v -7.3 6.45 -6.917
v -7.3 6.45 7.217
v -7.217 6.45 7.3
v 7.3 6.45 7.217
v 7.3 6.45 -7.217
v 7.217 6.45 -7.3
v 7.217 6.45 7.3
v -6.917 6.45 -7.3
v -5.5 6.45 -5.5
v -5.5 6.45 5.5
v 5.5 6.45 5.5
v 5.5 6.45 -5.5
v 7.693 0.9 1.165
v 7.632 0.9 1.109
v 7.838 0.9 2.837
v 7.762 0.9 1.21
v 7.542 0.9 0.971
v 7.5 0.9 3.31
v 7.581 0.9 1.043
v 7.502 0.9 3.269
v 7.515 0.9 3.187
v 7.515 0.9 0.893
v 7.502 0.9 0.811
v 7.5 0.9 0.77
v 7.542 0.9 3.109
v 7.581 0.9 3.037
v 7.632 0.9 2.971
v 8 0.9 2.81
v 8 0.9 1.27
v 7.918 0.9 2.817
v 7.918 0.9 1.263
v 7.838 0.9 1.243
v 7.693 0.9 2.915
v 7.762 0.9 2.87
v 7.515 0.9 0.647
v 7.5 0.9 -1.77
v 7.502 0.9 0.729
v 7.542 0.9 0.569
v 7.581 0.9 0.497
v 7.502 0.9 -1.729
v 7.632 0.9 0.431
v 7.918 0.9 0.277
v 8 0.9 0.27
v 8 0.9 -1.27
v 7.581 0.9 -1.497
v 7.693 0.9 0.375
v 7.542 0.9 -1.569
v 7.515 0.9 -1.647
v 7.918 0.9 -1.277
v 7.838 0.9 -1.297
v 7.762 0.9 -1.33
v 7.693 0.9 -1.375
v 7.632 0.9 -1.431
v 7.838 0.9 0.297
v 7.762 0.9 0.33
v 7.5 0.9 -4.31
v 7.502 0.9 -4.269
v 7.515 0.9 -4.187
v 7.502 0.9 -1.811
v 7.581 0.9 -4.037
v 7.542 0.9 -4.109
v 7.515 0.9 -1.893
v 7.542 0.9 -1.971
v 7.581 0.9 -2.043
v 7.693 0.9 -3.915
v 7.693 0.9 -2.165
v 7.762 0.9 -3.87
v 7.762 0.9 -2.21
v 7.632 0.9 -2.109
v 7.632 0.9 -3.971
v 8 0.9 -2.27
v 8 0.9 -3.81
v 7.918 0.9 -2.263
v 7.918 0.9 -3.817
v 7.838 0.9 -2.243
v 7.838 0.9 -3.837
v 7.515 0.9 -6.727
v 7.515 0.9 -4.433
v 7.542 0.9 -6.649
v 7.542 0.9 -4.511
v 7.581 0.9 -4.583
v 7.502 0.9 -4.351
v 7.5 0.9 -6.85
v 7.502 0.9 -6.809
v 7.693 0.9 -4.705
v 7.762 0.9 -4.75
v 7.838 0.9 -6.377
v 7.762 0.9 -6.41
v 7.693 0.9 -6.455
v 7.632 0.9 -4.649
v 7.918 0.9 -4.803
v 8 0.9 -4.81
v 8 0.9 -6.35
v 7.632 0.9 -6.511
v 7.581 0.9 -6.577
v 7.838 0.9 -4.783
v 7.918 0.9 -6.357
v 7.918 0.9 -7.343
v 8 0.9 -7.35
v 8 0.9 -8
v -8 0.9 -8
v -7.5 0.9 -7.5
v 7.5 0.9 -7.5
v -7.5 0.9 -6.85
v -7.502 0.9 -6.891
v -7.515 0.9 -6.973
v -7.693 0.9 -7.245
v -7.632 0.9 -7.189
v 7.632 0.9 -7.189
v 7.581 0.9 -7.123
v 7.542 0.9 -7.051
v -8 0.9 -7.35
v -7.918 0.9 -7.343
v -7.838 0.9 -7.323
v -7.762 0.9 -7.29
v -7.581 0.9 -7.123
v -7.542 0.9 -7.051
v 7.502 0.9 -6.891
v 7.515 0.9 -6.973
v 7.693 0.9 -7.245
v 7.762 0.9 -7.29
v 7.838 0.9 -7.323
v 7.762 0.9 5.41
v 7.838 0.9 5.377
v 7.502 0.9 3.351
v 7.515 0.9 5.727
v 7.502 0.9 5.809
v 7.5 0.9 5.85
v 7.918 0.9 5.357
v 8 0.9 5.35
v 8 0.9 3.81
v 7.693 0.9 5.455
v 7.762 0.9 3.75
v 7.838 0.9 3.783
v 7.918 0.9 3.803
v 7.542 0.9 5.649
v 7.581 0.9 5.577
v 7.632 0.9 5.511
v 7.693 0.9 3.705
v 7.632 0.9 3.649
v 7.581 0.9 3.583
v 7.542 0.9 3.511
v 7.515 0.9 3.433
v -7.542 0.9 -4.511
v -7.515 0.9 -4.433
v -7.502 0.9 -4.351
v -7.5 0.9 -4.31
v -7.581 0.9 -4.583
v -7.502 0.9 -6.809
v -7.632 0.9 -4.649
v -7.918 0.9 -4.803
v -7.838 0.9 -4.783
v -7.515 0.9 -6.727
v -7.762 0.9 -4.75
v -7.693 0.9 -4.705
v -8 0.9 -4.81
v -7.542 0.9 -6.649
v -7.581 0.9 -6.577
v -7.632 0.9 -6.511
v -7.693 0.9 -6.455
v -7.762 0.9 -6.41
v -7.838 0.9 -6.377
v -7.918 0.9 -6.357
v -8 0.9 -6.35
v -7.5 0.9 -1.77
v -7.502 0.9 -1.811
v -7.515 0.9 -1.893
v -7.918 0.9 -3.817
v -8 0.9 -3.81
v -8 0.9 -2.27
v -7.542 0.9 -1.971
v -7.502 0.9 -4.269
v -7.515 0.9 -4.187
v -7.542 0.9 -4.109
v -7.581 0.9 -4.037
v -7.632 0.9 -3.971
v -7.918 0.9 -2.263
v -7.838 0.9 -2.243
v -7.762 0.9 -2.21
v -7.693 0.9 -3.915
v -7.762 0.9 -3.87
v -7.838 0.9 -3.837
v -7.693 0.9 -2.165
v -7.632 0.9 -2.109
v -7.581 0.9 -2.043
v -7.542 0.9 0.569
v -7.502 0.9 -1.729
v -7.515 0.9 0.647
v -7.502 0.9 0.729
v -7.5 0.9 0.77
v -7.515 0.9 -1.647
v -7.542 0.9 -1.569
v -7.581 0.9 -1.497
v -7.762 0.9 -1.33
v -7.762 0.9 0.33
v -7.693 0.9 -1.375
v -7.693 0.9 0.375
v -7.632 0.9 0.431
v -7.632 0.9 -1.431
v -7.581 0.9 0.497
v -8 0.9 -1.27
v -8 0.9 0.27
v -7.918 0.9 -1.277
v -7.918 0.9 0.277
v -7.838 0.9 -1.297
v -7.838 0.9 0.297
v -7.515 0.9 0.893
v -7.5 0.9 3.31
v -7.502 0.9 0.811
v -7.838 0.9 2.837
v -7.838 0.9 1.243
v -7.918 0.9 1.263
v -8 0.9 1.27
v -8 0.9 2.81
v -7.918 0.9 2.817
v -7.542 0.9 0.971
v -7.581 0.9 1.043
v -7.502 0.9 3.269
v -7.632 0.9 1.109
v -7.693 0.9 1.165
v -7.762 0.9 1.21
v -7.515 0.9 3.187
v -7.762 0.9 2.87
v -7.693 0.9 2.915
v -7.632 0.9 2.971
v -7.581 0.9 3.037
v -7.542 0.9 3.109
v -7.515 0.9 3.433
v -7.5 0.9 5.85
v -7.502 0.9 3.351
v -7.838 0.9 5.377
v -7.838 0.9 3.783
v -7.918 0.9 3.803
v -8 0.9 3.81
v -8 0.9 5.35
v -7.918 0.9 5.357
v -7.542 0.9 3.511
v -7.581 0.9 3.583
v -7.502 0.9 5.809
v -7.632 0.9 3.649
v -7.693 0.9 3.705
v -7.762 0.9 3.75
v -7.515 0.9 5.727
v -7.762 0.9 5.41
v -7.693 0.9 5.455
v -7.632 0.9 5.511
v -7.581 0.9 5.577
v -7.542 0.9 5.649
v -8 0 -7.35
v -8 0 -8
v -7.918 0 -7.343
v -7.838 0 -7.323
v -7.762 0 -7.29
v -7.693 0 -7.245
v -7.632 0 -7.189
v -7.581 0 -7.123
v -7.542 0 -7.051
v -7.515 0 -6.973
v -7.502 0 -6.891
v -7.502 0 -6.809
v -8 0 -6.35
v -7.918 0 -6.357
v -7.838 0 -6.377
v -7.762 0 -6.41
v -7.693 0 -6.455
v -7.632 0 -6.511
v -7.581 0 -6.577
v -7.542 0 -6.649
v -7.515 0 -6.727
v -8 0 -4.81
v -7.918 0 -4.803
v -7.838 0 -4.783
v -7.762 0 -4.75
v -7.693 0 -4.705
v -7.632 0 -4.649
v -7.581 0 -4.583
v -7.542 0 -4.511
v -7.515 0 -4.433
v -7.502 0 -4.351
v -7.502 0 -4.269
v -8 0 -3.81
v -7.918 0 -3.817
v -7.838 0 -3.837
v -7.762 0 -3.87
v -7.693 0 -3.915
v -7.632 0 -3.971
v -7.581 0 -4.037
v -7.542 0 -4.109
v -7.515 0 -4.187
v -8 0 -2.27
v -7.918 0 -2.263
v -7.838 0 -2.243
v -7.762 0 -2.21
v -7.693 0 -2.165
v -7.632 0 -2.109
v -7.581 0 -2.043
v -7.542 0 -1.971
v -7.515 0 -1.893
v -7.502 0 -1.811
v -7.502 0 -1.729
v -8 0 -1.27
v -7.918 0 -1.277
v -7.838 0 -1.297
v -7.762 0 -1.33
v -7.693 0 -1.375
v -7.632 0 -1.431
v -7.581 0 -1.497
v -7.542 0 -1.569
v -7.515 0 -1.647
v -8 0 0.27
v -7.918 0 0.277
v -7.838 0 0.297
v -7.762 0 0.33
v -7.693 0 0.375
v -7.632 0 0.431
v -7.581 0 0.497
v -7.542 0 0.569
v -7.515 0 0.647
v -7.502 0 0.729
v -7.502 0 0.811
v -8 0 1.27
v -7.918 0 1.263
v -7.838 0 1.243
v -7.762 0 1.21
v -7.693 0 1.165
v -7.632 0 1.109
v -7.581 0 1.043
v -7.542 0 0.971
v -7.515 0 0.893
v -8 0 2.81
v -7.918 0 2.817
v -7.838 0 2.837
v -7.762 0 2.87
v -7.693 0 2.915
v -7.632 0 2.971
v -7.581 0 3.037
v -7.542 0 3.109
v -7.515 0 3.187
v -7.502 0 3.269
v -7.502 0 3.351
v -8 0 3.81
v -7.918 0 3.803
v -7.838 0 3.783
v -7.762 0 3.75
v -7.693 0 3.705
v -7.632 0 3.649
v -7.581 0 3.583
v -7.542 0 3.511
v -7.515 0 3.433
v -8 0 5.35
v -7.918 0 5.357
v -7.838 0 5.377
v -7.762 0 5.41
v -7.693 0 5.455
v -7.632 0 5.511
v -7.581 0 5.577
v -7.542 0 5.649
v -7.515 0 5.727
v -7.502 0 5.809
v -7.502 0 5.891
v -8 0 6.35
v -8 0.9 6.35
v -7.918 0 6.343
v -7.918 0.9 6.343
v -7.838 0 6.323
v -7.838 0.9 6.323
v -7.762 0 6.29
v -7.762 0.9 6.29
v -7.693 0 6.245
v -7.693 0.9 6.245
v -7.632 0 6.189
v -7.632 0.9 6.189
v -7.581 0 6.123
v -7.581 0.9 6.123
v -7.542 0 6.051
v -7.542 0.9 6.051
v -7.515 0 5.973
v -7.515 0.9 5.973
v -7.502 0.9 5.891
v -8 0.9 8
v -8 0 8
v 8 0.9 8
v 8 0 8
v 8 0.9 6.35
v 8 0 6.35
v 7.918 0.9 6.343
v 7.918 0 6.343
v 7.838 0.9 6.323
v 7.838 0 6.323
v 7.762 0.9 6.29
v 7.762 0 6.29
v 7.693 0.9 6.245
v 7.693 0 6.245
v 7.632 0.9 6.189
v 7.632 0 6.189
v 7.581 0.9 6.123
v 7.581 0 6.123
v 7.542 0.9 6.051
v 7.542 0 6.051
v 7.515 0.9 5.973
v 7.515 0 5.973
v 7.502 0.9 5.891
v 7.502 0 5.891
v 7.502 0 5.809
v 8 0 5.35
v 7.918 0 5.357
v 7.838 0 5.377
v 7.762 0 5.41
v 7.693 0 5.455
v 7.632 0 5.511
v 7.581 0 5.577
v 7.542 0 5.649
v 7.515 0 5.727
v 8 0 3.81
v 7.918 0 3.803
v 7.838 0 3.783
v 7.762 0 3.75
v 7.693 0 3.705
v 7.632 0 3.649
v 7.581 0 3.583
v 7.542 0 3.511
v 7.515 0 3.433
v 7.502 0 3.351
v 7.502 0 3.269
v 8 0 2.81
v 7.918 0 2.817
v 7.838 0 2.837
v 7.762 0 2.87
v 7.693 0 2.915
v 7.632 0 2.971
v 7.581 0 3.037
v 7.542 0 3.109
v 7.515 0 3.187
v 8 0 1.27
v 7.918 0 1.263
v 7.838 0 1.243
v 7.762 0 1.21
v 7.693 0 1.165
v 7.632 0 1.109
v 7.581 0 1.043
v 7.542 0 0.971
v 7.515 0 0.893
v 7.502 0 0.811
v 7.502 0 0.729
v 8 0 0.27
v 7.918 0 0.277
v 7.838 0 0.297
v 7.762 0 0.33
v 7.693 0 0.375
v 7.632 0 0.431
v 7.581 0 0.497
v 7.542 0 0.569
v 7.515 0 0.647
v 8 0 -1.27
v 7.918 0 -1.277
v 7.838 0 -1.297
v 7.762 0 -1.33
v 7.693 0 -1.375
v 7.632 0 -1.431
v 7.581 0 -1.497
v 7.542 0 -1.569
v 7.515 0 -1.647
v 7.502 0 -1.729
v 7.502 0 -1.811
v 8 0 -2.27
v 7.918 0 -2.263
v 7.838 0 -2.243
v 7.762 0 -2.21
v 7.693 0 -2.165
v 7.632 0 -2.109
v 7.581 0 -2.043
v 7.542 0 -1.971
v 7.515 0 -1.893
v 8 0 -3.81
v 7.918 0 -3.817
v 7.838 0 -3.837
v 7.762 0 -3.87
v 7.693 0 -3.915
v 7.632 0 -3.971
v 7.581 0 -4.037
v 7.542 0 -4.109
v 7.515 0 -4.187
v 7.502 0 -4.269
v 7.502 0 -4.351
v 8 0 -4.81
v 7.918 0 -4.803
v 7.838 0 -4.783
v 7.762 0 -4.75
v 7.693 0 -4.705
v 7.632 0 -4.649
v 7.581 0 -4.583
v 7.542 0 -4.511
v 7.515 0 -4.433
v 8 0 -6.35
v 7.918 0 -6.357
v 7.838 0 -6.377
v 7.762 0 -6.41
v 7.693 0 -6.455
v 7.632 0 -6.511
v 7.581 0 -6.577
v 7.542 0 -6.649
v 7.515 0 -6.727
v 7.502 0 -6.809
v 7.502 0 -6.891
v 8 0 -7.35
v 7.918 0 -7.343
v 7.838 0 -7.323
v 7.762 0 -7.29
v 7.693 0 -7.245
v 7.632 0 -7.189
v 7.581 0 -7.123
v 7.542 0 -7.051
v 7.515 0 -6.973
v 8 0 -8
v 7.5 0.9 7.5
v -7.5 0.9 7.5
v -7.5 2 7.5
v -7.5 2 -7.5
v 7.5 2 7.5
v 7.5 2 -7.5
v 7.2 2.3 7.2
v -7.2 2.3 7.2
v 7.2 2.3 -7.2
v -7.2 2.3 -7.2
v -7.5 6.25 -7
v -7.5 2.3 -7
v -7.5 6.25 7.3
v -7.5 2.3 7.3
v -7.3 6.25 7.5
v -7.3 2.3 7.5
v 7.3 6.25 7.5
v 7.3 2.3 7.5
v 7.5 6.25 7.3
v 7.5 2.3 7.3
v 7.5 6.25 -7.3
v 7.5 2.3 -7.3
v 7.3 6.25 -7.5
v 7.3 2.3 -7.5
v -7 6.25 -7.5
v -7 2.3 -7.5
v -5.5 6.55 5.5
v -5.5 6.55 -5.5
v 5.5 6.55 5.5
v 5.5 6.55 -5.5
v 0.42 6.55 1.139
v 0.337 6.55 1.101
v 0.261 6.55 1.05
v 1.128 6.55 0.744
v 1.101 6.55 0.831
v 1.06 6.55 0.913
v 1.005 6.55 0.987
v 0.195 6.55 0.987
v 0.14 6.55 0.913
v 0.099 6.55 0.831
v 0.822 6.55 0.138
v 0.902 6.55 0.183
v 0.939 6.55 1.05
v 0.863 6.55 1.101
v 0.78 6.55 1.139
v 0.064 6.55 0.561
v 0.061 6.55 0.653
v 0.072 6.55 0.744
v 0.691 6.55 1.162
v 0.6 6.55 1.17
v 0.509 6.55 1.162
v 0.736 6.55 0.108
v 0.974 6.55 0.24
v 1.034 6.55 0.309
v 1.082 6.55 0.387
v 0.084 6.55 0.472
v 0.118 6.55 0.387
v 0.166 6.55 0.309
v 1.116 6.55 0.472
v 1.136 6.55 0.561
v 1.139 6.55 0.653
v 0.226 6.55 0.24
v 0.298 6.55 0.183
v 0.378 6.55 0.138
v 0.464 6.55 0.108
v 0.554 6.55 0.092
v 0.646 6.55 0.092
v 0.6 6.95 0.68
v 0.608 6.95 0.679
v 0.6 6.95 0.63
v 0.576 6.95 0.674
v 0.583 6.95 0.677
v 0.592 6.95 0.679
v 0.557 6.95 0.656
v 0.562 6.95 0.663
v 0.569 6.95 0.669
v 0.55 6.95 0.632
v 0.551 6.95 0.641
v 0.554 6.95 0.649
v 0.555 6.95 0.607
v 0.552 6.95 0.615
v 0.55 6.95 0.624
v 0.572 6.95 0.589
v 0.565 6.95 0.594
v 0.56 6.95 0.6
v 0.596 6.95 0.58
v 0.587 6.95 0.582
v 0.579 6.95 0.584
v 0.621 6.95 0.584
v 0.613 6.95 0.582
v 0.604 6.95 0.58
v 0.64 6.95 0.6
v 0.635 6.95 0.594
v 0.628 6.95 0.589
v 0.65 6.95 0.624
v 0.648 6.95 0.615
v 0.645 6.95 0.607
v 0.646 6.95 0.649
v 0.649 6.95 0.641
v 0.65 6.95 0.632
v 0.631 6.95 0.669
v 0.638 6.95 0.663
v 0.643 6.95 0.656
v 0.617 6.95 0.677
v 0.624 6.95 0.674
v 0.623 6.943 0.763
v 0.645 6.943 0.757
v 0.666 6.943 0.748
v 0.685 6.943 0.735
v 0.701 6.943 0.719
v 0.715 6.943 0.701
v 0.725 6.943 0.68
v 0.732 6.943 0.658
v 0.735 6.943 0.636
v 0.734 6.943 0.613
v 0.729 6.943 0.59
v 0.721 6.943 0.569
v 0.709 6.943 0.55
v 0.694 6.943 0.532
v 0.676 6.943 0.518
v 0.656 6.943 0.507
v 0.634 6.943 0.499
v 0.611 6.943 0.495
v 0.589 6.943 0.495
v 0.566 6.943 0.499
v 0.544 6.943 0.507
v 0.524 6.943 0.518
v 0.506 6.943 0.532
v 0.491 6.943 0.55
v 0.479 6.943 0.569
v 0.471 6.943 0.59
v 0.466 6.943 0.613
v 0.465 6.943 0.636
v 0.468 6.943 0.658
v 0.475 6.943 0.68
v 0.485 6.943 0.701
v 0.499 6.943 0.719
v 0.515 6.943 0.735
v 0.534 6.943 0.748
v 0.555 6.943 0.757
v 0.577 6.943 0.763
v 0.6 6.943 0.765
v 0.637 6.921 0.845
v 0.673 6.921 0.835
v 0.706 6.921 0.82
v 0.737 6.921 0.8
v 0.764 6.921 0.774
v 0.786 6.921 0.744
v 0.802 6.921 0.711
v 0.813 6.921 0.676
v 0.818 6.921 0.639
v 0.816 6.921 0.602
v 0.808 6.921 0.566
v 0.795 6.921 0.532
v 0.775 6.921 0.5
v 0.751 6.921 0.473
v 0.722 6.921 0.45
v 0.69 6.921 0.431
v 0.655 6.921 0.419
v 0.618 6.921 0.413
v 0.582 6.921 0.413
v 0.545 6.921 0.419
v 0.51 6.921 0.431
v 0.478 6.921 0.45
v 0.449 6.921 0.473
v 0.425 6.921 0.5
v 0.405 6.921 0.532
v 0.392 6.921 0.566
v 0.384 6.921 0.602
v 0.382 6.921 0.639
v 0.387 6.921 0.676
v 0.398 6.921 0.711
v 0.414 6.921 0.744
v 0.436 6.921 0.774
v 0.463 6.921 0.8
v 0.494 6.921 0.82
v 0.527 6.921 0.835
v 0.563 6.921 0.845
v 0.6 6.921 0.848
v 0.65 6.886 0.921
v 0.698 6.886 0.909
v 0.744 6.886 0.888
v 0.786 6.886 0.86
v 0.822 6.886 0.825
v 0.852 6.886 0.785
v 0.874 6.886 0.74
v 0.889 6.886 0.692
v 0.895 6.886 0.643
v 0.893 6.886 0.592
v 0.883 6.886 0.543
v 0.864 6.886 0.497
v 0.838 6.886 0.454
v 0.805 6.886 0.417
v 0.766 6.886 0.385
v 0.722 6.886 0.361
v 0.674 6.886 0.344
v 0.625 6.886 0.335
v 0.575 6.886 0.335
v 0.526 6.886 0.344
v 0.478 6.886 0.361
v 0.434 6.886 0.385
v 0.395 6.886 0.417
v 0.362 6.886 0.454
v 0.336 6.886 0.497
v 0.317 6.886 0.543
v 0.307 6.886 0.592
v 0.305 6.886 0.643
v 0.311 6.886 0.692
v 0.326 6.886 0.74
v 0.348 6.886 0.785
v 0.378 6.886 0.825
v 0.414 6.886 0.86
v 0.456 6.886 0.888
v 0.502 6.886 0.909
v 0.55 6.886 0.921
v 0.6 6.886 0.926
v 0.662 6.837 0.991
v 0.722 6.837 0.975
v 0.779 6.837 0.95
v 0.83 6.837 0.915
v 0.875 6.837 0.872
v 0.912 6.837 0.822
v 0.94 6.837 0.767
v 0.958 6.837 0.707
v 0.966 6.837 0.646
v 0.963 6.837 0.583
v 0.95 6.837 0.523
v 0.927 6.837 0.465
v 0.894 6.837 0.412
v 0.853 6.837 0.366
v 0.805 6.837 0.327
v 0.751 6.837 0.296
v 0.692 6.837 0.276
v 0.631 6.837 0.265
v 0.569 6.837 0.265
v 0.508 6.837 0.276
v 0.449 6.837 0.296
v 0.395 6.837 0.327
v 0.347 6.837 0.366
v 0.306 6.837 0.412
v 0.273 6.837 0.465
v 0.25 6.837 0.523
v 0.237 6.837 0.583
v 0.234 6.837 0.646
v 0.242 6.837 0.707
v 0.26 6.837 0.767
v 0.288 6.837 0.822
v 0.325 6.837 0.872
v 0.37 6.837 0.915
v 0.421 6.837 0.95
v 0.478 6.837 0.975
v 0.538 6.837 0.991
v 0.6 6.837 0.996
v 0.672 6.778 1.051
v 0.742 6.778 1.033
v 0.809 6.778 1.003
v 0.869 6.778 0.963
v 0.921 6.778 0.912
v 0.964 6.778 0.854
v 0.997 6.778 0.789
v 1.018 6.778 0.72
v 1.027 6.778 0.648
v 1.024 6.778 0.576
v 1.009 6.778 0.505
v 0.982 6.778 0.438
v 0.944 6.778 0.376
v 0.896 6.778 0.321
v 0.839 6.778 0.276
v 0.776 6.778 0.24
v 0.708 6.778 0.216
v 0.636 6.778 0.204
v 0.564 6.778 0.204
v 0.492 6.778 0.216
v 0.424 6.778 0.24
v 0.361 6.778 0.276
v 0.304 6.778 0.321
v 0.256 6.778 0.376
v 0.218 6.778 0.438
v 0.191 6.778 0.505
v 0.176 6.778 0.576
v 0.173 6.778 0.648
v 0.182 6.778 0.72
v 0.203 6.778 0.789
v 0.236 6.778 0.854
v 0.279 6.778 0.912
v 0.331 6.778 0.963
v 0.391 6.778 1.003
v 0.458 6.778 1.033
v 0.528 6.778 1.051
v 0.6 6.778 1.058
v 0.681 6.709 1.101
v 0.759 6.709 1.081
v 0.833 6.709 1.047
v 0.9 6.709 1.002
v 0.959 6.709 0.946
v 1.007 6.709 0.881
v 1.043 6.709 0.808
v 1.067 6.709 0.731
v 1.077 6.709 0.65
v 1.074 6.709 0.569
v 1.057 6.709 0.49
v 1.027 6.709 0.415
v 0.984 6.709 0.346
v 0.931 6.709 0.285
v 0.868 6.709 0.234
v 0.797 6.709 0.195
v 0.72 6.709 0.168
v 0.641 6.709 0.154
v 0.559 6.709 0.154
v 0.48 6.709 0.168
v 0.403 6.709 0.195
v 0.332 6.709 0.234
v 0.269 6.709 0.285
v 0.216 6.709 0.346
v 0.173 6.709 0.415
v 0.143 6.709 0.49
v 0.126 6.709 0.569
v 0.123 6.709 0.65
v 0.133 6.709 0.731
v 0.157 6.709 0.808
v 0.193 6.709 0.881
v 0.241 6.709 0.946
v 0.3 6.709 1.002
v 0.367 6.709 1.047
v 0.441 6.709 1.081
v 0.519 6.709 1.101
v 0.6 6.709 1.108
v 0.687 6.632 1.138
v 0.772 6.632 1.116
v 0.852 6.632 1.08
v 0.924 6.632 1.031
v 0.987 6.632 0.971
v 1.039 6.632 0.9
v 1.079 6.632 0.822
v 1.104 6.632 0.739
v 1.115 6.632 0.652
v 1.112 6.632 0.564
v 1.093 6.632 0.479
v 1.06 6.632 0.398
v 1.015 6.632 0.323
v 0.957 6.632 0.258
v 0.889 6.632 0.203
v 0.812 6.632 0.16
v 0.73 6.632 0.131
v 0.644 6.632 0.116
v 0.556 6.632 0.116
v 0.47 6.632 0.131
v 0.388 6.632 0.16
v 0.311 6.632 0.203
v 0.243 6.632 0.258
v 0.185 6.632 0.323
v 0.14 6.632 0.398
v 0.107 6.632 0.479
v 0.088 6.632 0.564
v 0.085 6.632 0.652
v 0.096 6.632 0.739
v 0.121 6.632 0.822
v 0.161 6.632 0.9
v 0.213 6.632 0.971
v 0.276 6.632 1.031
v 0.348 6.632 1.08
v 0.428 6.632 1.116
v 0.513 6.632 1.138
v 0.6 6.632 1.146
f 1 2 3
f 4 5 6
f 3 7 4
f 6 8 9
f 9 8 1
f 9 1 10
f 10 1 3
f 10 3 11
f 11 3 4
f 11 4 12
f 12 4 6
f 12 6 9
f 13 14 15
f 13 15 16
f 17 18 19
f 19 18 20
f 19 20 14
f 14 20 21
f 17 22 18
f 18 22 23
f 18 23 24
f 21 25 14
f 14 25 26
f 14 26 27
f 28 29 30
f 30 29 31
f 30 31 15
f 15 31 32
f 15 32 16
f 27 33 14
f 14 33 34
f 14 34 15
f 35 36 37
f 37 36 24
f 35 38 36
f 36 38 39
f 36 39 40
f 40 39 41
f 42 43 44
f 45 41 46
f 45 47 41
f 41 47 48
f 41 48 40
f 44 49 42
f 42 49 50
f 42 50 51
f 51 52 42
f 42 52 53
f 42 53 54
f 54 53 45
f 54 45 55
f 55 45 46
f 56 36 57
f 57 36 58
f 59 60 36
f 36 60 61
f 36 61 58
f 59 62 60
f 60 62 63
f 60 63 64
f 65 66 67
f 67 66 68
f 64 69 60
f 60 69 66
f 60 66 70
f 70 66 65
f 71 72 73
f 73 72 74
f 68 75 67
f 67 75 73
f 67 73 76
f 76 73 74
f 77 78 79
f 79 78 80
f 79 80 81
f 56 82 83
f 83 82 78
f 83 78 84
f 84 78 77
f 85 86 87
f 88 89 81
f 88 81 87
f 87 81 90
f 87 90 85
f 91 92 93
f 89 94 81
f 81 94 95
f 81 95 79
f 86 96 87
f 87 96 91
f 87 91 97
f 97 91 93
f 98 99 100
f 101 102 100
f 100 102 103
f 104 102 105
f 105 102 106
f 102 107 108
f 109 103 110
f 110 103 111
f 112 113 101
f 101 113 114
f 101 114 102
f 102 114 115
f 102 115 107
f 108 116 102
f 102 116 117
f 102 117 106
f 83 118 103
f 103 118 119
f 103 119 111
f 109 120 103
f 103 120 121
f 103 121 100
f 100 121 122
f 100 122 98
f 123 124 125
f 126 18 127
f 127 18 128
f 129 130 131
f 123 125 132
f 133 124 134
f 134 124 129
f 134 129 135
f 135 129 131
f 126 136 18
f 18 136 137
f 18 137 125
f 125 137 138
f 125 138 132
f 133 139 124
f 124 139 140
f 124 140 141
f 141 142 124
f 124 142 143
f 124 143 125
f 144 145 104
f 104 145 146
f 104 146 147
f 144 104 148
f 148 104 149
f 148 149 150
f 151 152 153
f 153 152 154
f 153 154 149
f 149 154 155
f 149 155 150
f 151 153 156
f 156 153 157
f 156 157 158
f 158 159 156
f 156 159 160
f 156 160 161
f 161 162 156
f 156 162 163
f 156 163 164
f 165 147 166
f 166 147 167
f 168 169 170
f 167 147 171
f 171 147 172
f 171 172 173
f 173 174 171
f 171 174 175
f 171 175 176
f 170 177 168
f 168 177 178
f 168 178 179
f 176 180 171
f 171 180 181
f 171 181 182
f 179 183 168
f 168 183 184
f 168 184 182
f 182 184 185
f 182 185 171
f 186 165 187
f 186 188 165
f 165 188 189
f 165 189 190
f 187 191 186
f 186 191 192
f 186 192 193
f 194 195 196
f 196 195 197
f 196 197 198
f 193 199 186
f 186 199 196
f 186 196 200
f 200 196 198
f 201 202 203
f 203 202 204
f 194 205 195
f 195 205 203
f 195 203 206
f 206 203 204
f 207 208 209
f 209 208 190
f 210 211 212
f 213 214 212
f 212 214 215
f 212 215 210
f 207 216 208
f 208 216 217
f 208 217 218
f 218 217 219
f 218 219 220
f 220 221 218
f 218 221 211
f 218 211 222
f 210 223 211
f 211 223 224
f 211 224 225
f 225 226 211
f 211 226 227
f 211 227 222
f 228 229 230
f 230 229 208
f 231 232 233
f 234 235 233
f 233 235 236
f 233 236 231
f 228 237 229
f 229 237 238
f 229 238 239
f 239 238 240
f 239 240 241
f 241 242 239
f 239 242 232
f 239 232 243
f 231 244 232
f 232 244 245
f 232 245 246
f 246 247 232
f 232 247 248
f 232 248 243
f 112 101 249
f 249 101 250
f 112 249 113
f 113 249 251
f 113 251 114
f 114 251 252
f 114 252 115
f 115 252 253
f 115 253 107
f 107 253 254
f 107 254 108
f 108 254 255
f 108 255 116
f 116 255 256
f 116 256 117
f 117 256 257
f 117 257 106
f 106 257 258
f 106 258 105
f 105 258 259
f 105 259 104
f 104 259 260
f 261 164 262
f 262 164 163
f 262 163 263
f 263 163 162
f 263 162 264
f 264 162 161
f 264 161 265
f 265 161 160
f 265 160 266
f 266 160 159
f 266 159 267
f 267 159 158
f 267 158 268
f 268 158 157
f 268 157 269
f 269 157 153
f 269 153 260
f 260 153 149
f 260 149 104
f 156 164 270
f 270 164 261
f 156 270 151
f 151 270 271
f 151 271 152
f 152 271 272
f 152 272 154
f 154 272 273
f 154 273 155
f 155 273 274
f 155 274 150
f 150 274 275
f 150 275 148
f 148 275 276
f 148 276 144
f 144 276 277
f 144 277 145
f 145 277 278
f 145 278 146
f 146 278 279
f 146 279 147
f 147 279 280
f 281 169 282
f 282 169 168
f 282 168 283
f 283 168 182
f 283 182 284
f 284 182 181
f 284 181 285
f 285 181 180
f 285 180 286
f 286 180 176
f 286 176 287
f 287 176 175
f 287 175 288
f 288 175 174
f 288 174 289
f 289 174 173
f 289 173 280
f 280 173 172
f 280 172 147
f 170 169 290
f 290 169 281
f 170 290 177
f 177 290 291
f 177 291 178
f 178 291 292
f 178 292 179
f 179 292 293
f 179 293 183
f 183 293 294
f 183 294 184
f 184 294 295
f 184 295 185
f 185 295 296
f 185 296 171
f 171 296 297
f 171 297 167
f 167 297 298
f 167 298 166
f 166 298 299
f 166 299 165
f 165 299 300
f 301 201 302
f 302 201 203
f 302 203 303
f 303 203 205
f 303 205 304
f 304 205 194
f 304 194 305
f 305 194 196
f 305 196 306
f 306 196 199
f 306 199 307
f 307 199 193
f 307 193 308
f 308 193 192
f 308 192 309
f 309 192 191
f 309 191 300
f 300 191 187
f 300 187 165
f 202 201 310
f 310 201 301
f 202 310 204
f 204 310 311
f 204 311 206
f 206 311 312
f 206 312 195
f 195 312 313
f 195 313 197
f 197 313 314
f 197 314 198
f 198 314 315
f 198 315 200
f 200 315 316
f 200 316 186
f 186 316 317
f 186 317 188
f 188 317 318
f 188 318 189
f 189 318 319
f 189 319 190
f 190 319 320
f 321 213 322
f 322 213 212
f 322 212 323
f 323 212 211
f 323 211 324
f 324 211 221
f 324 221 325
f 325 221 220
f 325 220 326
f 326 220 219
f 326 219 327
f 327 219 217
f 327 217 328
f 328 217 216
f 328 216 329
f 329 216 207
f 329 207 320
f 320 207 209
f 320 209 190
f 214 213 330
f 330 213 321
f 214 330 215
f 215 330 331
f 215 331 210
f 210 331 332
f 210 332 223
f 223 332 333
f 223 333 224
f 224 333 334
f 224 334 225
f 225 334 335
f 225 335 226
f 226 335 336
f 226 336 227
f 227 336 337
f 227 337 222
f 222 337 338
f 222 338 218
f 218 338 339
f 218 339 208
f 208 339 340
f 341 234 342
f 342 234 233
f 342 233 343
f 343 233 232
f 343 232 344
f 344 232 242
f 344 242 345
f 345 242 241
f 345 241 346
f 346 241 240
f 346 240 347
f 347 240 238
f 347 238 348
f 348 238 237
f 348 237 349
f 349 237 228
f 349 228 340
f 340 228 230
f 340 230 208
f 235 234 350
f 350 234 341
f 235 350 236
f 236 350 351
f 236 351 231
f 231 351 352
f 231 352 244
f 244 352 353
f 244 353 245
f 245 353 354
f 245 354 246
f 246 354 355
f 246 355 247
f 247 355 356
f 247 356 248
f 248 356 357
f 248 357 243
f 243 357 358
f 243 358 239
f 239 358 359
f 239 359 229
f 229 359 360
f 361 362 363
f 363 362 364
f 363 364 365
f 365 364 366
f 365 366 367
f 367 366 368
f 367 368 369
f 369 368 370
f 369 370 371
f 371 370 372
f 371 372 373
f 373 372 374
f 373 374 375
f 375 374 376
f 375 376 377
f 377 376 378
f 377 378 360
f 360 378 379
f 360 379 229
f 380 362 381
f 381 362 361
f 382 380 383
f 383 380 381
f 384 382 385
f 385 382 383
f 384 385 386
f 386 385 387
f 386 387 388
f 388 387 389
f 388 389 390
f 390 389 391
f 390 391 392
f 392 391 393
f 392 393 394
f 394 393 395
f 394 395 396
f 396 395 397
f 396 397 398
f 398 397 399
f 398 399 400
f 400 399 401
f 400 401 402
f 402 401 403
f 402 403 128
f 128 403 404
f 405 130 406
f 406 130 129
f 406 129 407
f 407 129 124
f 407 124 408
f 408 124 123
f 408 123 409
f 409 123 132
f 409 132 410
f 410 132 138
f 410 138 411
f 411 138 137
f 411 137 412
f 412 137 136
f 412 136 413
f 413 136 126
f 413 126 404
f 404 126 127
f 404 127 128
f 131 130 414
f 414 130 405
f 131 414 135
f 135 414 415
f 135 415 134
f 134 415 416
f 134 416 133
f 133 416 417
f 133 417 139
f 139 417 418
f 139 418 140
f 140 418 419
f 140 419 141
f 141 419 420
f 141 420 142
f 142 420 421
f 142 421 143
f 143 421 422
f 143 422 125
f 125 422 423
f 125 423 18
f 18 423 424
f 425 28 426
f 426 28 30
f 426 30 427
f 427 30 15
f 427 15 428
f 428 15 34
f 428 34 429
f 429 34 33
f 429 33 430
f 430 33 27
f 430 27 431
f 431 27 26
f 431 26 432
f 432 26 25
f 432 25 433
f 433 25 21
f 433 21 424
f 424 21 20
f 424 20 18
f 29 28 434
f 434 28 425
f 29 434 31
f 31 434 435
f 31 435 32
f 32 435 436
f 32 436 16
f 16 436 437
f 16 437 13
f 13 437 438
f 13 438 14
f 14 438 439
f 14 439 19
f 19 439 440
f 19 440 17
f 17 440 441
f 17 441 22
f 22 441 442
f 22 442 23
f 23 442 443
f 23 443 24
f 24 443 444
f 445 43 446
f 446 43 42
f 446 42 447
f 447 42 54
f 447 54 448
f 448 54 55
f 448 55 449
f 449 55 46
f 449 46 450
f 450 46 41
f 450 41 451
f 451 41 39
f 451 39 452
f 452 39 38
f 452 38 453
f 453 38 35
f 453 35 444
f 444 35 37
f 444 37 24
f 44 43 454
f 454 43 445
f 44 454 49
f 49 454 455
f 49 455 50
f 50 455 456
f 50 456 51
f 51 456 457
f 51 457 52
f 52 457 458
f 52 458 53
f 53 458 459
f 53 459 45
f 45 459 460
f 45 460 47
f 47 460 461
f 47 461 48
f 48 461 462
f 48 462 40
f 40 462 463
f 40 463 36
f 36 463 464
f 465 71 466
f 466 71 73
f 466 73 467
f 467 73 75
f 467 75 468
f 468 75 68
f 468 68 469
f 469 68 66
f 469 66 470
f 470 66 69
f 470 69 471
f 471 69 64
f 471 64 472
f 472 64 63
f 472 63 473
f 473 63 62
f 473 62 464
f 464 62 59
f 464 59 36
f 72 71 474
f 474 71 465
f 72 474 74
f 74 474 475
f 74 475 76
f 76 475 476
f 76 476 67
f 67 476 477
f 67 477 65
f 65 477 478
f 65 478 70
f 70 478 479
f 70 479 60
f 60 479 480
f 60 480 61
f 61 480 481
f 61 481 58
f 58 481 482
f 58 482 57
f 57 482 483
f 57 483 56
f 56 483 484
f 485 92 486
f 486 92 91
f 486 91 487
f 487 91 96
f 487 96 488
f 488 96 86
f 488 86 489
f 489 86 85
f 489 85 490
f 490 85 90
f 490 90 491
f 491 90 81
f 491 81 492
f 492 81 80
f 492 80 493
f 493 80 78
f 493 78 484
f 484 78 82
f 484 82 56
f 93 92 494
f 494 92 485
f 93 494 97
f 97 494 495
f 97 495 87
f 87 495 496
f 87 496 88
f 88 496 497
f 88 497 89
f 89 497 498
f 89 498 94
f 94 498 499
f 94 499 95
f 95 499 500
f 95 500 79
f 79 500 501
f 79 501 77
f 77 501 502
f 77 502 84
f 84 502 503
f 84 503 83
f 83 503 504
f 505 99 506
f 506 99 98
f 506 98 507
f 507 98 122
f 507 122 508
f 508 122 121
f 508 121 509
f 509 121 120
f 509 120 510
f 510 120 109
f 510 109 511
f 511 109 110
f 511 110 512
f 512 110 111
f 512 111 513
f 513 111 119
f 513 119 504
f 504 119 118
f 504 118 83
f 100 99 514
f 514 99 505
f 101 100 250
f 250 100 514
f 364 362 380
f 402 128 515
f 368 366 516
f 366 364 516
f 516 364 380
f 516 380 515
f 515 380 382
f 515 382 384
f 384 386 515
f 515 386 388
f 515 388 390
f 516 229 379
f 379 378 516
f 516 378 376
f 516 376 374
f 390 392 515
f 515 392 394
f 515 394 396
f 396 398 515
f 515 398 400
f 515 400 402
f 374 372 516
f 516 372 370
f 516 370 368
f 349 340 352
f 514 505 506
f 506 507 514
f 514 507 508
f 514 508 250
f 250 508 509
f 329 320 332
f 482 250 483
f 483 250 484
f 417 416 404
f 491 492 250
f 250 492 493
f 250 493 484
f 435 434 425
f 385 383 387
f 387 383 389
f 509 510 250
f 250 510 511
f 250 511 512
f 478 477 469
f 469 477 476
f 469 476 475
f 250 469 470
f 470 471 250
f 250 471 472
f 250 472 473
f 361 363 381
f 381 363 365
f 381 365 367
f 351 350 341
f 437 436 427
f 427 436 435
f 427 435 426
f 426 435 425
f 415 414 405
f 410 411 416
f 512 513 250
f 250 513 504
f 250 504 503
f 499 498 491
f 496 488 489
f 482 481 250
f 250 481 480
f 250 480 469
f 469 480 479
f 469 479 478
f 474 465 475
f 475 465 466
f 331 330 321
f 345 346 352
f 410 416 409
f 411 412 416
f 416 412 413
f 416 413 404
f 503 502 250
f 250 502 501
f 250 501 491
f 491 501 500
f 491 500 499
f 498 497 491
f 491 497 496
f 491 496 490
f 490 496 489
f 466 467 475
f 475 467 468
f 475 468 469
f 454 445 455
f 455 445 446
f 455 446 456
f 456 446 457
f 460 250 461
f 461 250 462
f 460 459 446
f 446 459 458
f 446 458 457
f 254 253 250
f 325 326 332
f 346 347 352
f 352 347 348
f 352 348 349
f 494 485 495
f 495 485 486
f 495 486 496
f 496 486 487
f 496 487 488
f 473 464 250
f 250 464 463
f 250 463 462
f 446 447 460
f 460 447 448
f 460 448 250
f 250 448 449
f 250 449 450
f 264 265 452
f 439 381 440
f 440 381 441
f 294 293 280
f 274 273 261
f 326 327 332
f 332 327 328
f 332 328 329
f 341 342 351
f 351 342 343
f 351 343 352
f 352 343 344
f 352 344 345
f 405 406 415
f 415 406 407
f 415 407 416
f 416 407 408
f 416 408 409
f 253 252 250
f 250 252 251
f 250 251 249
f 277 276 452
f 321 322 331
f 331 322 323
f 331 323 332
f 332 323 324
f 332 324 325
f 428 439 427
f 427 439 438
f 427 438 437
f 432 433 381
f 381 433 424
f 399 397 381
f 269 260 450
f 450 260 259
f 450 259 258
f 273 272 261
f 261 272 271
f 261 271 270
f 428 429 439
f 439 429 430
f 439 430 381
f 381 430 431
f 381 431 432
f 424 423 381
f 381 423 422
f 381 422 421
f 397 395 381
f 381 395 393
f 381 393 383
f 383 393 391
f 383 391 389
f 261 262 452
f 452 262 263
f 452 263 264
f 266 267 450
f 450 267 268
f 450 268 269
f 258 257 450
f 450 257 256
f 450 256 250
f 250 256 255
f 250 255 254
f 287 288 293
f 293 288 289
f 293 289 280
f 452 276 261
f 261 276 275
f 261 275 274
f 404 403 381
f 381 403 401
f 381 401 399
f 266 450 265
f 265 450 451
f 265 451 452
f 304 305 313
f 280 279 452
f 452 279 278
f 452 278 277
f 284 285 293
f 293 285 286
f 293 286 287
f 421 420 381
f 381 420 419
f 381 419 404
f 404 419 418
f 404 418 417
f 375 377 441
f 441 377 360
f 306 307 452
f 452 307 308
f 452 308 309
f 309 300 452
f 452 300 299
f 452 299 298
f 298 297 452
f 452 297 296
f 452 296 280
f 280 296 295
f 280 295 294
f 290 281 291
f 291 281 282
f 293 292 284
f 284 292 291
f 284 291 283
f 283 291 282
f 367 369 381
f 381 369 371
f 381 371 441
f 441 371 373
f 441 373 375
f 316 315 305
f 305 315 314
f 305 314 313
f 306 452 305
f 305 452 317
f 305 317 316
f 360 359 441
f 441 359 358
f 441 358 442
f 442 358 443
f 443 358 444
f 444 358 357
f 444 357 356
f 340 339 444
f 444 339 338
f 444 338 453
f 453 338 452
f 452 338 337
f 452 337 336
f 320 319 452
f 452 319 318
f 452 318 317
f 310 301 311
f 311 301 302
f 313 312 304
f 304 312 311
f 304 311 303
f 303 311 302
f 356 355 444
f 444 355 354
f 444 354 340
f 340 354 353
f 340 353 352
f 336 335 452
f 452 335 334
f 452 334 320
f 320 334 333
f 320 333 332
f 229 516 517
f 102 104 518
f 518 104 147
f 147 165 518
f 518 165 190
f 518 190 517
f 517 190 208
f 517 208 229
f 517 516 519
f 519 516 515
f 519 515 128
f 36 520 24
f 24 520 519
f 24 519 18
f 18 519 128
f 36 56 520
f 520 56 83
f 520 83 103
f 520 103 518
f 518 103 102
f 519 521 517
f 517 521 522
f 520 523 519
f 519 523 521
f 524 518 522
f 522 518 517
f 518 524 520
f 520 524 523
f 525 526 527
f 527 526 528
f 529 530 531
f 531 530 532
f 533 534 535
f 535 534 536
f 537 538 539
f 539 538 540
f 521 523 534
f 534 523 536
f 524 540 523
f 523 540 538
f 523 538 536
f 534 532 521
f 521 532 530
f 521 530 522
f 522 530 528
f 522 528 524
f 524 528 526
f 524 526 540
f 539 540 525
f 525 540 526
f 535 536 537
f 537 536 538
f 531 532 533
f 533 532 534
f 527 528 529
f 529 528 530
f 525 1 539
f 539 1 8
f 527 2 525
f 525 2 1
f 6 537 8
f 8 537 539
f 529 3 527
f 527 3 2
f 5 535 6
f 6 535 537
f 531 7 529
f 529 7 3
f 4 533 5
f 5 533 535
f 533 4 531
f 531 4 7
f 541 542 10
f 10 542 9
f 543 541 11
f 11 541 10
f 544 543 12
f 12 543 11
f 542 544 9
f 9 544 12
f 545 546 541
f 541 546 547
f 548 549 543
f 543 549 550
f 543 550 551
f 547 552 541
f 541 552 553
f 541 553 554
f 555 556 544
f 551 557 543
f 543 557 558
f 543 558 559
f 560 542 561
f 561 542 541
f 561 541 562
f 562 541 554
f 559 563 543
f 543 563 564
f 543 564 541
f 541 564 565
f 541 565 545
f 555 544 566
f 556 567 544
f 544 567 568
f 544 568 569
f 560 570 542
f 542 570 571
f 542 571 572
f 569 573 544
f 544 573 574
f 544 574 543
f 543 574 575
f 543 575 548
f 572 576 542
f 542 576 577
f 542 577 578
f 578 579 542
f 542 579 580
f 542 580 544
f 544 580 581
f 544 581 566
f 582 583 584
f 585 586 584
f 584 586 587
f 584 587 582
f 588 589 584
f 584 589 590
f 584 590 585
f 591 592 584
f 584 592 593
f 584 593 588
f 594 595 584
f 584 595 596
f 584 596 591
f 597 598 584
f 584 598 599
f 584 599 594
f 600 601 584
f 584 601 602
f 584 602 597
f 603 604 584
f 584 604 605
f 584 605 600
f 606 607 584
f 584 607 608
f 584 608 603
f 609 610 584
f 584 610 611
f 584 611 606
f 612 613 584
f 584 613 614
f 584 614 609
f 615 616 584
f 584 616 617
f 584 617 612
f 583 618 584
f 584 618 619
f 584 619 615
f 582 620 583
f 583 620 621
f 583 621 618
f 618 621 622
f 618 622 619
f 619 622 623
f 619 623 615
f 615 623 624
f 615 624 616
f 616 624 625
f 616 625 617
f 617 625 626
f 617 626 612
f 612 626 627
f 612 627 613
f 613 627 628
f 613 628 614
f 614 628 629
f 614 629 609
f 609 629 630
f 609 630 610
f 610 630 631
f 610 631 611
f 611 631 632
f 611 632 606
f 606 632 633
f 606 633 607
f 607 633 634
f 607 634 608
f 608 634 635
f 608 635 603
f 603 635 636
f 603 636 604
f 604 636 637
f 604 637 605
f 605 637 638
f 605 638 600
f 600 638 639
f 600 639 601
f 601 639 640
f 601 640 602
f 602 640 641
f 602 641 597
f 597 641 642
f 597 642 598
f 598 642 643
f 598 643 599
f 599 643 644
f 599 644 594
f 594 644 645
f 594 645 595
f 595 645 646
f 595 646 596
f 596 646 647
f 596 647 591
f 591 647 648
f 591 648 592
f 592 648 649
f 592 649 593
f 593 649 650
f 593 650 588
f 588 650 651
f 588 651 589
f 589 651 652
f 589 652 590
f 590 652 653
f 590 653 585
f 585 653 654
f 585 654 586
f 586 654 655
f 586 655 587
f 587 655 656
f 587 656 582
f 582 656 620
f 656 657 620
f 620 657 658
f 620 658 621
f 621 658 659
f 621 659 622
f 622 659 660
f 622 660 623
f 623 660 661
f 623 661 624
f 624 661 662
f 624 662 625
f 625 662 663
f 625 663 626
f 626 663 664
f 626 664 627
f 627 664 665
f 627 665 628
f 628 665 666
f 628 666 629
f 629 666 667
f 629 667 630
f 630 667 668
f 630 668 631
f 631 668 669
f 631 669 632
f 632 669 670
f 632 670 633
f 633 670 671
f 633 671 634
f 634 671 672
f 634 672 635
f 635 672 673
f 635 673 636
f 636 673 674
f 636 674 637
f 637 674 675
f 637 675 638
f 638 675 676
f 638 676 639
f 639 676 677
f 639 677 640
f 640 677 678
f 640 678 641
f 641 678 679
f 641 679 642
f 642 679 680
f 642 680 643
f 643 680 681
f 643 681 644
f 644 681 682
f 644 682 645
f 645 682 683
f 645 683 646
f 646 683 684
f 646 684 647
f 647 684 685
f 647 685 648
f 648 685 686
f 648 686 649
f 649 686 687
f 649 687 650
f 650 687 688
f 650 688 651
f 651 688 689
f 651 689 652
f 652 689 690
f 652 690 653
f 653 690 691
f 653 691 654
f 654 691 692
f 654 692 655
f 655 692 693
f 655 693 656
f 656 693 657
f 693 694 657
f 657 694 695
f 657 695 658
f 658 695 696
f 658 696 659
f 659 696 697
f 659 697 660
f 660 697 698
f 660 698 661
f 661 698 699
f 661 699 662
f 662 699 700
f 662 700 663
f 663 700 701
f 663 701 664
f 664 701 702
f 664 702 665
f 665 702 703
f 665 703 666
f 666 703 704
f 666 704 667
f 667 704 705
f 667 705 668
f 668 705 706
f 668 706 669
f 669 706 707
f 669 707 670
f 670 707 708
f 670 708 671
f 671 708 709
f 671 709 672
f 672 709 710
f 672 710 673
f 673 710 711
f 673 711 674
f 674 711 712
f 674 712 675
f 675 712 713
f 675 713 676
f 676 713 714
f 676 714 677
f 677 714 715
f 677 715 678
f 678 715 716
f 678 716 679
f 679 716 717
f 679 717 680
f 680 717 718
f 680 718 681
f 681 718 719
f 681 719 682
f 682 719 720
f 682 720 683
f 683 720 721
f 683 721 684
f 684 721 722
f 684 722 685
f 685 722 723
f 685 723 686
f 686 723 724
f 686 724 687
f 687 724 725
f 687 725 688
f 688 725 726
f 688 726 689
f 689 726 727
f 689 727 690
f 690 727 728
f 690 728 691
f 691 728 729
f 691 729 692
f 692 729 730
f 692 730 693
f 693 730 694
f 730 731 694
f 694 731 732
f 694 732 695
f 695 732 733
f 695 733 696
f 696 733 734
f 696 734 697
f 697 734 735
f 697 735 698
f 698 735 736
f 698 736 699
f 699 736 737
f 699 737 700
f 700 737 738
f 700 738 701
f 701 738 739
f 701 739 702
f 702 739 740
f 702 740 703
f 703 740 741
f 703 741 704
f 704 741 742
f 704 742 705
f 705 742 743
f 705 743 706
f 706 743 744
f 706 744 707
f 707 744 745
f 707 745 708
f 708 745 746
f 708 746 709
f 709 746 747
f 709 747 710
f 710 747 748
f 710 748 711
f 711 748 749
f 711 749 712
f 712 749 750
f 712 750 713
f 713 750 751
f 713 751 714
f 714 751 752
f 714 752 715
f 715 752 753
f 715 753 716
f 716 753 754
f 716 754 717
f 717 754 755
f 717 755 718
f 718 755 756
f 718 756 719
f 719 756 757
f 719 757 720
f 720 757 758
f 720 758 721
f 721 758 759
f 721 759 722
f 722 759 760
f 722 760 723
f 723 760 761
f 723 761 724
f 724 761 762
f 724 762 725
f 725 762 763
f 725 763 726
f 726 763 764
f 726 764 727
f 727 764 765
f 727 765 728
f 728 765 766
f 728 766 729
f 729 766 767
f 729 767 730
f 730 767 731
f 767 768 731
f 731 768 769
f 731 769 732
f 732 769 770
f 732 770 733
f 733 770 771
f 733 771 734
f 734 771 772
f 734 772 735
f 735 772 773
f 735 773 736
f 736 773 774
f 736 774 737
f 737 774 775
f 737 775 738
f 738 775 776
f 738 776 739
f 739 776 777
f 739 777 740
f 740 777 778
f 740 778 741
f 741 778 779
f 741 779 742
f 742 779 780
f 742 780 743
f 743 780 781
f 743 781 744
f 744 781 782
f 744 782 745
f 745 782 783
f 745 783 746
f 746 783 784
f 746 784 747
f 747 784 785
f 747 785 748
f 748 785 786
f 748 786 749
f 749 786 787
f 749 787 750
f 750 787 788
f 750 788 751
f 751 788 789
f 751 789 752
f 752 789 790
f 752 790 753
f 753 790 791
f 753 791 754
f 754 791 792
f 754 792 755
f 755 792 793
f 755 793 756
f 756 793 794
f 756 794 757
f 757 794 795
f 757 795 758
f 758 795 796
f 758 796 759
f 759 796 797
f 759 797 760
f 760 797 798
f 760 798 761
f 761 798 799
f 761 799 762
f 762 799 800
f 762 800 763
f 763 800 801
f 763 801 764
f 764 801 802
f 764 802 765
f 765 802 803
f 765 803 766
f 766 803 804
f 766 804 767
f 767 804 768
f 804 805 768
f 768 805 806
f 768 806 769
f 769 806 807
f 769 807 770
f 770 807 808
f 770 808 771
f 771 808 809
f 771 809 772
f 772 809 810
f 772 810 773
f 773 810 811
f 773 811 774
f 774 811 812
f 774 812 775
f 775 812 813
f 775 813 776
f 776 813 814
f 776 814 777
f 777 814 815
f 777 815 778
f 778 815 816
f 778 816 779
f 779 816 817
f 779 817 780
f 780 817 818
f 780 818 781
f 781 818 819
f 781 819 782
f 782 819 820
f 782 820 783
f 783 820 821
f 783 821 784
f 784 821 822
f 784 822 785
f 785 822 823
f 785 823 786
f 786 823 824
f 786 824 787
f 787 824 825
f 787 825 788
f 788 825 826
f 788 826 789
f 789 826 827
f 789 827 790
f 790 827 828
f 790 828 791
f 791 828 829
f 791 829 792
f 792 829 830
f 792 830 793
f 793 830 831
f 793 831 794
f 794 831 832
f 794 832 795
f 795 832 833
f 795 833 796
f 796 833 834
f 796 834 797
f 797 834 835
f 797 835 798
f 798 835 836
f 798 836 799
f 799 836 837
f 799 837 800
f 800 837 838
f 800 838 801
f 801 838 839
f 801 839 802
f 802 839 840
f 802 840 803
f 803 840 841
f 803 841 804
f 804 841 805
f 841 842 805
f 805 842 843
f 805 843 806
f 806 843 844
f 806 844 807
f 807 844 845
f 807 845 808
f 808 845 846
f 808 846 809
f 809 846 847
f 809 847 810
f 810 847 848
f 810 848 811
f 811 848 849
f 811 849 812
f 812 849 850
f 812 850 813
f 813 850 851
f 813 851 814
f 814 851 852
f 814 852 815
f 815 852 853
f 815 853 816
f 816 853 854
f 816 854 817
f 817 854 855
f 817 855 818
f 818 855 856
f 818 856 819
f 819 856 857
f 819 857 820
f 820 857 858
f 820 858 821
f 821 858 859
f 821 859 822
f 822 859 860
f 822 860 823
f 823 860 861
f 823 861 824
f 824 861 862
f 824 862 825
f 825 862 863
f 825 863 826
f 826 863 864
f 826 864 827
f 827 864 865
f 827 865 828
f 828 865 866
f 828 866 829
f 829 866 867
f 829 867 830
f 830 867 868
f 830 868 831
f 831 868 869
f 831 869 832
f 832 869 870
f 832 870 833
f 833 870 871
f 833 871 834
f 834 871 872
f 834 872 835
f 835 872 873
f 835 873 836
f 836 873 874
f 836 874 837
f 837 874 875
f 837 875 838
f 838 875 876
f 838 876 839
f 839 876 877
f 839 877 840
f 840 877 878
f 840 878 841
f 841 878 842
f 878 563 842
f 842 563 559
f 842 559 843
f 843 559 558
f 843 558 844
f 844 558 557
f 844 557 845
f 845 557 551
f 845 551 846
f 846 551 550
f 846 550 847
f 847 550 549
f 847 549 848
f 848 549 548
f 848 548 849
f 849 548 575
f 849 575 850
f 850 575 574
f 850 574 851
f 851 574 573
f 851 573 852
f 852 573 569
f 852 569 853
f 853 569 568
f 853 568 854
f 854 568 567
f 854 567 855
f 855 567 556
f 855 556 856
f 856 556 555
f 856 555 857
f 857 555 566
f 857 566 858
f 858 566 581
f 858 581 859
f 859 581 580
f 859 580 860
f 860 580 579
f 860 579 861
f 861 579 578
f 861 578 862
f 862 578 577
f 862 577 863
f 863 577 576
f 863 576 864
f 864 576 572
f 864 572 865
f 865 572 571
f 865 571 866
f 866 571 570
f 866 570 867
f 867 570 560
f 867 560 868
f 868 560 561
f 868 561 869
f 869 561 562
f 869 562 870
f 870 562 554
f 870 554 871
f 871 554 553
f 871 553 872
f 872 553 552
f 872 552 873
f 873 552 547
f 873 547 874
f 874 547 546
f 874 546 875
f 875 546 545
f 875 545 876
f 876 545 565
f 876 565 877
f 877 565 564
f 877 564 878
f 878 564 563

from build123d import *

# Parameters (mm, degrees)
EXTRUDE1_DEPTH = 0.9
SKETCH2_W      = 15
SKETCH2_H      = 15
EXTRUDE2_DEPTH = 1.4
CHAMFER1_SIZE  = 0.3
SKETCH3_W      = 15
SKETCH3_H      = 15
EXTRUDE3_DEPTH = 4.15
CHAMFER2_SIZE  = 0.5
CHAMFER3_SIZE  = 0.2
CHAMFER4_SIZE  = 0.2
SKETCH4_R      = 0.55
EXTRUDE4_DEPTH = 0.5
FILLET1_R      = 0.5
SKETCH5_W      = 11
SKETCH5_H      = 11
EXTRUDE5_DEPTH = 0.1


with BuildPart() as part:
    # Sketch1 → Extrude1 (new body)
    with BuildSketch(Plane(origin=(0, 0, 0), x_dir=(1, 0, 0), z_dir=(0, 1, 0))):
        with BuildLine():
            Line((8, 6.35), (8, 4.81))
            ThreePointArc((8, 4.81), (7.5, 4.31), (8, 3.81))
            Line((8, 3.81), (8, 2.27))
            ThreePointArc((8, 2.27), (7.5, 1.77), (8, 1.27))
            Line((8, 1.27), (8, -0.27))
            ThreePointArc((8, -0.27), (7.5, -0.77), (8, -1.27))
            Line((8, -1.27), (8, -2.81))
            ThreePointArc((8, -2.81), (7.5, -3.31), (8, -3.81))
            Line((8, -3.81), (8, -5.35))
            ThreePointArc((8, -5.35), (7.5, -5.85), (8, -6.35))
            Line((8, -6.35), (8, -8))
            Line((8, -8), (-8, -8))
            Line((-8, -8), (-8, -6.35))
            ThreePointArc((-8, -6.35), (-7.5, -5.85), (-8, -5.35))
            Line((-8, -5.35), (-8, -3.81))
            ThreePointArc((-8, -3.81), (-7.5, -3.31), (-8, -2.81))
            Line((-8, -2.81), (-8, -1.27))
            ThreePointArc((-8, -1.27), (-7.5, -0.77), (-8, -0.27))
            Line((-8, -0.27), (-8, 1.27))
            ThreePointArc((-8, 1.27), (-7.5, 1.77), (-8, 2.27))
            Line((-8, 2.27), (-8, 3.81))
            ThreePointArc((-8, 3.81), (-7.5, 4.31), (-8, 4.81))
            Line((-8, 4.81), (-8, 6.35))
            ThreePointArc((-8, 6.35), (-7.5, 6.85), (-8, 7.35))
            Line((-8, 7.35), (-8, 8))
            Line((-8, 8), (8, 8))
            Line((8, 8), (8, 7.35))
            ThreePointArc((8, 7.35), (7.5, 6.85), (8, 6.35))
        make_face()
    extrude(amount=EXTRUDE1_DEPTH)

    # Sketch2 → Extrude2 (add)
    with BuildSketch(Plane(origin=(0, 0.9, 0), x_dir=(1, 0, 0), z_dir=(0, 1, 0))):
        Rectangle(SKETCH2_W, SKETCH2_H)
    extrude(amount=EXTRUDE2_DEPTH)

    # Chamfer1
    chamfer1_edges = [part.edges().sort_by_distance(p)[0] for p in [
        (-7.5, 2.3, 0),
        (0, 2.3, 7.5),
        (7.5, 2.3, 0),
        (0, 2.3, -7.5),
    ]]
    chamfer(chamfer1_edges, length=CHAMFER1_SIZE)

    # Sketch3 → Extrude3 (add)
    with BuildSketch(Plane(origin=(0, 2.3, 0), x_dir=(1, 0, 0), z_dir=(0, 1, 0))):
        Rectangle(SKETCH3_W, SKETCH3_H)
    extrude(amount=EXTRUDE3_DEPTH)

    # Chamfer2
    chamfer2_edges = [part.edges().sort_by_distance(p)[0] for p in [
        (-7.5, 4.375, -7.5),
    ]]
    chamfer(chamfer2_edges, length=CHAMFER2_SIZE)

    # Chamfer3
    chamfer3_edges = [part.edges().sort_by_distance(p)[0] for p in [
        (-7.5, 4.375, 7.5),
        (7.5, 4.375, 7.5),
        (7.5, 4.375, -7.5),
    ]]
    chamfer(chamfer3_edges, length=CHAMFER3_SIZE)

    # Chamfer4
    chamfer4_edges = [part.edges().sort_by_distance(p)[0] for p in [
        (-7.5, 6.45, 0.15),
        (-7.25, 6.45, -7.25),
        (0.15, 6.45, -7.5),
        (7.5, 6.45, 0),
        (0, 6.45, 7.5),
        (-7.4, 6.45, 7.4),
        (7.4, 6.45, 7.4),
        (7.4, 6.45, -7.4),
    ]]
    chamfer(chamfer4_edges, length=CHAMFER4_SIZE)

    # Sketch4 → Extrude4 (add)
    with BuildSketch(Plane(origin=(0, 6.45, 0), x_dir=(1, 0, 0), z_dir=(0, 1, 0))):
        with Locations(Location((0.6, -0.63, 0), (0, 0, 270))):
            Circle(SKETCH4_R)
    extrude(amount=EXTRUDE4_DEPTH)

    # Fillet1
    fillet1_edges = [part.edges().sort_by_distance(p)[0] for p in [
        (0.6, 6.95, 0.08),
    ]]
    fillet(fillet1_edges, radius=FILLET1_R - 0.0001)  # a hair under: the kernel refuses the full size

    # Sketch5 → Extrude5 (add)
    with BuildSketch(Plane(origin=(0, 6.45, 0), x_dir=(1, 0, 0), z_dir=(0, 1, 0))):
        Rectangle(SKETCH5_W, SKETCH5_H)
    extrude(amount=EXTRUDE5_DEPTH)


solid = part.part
